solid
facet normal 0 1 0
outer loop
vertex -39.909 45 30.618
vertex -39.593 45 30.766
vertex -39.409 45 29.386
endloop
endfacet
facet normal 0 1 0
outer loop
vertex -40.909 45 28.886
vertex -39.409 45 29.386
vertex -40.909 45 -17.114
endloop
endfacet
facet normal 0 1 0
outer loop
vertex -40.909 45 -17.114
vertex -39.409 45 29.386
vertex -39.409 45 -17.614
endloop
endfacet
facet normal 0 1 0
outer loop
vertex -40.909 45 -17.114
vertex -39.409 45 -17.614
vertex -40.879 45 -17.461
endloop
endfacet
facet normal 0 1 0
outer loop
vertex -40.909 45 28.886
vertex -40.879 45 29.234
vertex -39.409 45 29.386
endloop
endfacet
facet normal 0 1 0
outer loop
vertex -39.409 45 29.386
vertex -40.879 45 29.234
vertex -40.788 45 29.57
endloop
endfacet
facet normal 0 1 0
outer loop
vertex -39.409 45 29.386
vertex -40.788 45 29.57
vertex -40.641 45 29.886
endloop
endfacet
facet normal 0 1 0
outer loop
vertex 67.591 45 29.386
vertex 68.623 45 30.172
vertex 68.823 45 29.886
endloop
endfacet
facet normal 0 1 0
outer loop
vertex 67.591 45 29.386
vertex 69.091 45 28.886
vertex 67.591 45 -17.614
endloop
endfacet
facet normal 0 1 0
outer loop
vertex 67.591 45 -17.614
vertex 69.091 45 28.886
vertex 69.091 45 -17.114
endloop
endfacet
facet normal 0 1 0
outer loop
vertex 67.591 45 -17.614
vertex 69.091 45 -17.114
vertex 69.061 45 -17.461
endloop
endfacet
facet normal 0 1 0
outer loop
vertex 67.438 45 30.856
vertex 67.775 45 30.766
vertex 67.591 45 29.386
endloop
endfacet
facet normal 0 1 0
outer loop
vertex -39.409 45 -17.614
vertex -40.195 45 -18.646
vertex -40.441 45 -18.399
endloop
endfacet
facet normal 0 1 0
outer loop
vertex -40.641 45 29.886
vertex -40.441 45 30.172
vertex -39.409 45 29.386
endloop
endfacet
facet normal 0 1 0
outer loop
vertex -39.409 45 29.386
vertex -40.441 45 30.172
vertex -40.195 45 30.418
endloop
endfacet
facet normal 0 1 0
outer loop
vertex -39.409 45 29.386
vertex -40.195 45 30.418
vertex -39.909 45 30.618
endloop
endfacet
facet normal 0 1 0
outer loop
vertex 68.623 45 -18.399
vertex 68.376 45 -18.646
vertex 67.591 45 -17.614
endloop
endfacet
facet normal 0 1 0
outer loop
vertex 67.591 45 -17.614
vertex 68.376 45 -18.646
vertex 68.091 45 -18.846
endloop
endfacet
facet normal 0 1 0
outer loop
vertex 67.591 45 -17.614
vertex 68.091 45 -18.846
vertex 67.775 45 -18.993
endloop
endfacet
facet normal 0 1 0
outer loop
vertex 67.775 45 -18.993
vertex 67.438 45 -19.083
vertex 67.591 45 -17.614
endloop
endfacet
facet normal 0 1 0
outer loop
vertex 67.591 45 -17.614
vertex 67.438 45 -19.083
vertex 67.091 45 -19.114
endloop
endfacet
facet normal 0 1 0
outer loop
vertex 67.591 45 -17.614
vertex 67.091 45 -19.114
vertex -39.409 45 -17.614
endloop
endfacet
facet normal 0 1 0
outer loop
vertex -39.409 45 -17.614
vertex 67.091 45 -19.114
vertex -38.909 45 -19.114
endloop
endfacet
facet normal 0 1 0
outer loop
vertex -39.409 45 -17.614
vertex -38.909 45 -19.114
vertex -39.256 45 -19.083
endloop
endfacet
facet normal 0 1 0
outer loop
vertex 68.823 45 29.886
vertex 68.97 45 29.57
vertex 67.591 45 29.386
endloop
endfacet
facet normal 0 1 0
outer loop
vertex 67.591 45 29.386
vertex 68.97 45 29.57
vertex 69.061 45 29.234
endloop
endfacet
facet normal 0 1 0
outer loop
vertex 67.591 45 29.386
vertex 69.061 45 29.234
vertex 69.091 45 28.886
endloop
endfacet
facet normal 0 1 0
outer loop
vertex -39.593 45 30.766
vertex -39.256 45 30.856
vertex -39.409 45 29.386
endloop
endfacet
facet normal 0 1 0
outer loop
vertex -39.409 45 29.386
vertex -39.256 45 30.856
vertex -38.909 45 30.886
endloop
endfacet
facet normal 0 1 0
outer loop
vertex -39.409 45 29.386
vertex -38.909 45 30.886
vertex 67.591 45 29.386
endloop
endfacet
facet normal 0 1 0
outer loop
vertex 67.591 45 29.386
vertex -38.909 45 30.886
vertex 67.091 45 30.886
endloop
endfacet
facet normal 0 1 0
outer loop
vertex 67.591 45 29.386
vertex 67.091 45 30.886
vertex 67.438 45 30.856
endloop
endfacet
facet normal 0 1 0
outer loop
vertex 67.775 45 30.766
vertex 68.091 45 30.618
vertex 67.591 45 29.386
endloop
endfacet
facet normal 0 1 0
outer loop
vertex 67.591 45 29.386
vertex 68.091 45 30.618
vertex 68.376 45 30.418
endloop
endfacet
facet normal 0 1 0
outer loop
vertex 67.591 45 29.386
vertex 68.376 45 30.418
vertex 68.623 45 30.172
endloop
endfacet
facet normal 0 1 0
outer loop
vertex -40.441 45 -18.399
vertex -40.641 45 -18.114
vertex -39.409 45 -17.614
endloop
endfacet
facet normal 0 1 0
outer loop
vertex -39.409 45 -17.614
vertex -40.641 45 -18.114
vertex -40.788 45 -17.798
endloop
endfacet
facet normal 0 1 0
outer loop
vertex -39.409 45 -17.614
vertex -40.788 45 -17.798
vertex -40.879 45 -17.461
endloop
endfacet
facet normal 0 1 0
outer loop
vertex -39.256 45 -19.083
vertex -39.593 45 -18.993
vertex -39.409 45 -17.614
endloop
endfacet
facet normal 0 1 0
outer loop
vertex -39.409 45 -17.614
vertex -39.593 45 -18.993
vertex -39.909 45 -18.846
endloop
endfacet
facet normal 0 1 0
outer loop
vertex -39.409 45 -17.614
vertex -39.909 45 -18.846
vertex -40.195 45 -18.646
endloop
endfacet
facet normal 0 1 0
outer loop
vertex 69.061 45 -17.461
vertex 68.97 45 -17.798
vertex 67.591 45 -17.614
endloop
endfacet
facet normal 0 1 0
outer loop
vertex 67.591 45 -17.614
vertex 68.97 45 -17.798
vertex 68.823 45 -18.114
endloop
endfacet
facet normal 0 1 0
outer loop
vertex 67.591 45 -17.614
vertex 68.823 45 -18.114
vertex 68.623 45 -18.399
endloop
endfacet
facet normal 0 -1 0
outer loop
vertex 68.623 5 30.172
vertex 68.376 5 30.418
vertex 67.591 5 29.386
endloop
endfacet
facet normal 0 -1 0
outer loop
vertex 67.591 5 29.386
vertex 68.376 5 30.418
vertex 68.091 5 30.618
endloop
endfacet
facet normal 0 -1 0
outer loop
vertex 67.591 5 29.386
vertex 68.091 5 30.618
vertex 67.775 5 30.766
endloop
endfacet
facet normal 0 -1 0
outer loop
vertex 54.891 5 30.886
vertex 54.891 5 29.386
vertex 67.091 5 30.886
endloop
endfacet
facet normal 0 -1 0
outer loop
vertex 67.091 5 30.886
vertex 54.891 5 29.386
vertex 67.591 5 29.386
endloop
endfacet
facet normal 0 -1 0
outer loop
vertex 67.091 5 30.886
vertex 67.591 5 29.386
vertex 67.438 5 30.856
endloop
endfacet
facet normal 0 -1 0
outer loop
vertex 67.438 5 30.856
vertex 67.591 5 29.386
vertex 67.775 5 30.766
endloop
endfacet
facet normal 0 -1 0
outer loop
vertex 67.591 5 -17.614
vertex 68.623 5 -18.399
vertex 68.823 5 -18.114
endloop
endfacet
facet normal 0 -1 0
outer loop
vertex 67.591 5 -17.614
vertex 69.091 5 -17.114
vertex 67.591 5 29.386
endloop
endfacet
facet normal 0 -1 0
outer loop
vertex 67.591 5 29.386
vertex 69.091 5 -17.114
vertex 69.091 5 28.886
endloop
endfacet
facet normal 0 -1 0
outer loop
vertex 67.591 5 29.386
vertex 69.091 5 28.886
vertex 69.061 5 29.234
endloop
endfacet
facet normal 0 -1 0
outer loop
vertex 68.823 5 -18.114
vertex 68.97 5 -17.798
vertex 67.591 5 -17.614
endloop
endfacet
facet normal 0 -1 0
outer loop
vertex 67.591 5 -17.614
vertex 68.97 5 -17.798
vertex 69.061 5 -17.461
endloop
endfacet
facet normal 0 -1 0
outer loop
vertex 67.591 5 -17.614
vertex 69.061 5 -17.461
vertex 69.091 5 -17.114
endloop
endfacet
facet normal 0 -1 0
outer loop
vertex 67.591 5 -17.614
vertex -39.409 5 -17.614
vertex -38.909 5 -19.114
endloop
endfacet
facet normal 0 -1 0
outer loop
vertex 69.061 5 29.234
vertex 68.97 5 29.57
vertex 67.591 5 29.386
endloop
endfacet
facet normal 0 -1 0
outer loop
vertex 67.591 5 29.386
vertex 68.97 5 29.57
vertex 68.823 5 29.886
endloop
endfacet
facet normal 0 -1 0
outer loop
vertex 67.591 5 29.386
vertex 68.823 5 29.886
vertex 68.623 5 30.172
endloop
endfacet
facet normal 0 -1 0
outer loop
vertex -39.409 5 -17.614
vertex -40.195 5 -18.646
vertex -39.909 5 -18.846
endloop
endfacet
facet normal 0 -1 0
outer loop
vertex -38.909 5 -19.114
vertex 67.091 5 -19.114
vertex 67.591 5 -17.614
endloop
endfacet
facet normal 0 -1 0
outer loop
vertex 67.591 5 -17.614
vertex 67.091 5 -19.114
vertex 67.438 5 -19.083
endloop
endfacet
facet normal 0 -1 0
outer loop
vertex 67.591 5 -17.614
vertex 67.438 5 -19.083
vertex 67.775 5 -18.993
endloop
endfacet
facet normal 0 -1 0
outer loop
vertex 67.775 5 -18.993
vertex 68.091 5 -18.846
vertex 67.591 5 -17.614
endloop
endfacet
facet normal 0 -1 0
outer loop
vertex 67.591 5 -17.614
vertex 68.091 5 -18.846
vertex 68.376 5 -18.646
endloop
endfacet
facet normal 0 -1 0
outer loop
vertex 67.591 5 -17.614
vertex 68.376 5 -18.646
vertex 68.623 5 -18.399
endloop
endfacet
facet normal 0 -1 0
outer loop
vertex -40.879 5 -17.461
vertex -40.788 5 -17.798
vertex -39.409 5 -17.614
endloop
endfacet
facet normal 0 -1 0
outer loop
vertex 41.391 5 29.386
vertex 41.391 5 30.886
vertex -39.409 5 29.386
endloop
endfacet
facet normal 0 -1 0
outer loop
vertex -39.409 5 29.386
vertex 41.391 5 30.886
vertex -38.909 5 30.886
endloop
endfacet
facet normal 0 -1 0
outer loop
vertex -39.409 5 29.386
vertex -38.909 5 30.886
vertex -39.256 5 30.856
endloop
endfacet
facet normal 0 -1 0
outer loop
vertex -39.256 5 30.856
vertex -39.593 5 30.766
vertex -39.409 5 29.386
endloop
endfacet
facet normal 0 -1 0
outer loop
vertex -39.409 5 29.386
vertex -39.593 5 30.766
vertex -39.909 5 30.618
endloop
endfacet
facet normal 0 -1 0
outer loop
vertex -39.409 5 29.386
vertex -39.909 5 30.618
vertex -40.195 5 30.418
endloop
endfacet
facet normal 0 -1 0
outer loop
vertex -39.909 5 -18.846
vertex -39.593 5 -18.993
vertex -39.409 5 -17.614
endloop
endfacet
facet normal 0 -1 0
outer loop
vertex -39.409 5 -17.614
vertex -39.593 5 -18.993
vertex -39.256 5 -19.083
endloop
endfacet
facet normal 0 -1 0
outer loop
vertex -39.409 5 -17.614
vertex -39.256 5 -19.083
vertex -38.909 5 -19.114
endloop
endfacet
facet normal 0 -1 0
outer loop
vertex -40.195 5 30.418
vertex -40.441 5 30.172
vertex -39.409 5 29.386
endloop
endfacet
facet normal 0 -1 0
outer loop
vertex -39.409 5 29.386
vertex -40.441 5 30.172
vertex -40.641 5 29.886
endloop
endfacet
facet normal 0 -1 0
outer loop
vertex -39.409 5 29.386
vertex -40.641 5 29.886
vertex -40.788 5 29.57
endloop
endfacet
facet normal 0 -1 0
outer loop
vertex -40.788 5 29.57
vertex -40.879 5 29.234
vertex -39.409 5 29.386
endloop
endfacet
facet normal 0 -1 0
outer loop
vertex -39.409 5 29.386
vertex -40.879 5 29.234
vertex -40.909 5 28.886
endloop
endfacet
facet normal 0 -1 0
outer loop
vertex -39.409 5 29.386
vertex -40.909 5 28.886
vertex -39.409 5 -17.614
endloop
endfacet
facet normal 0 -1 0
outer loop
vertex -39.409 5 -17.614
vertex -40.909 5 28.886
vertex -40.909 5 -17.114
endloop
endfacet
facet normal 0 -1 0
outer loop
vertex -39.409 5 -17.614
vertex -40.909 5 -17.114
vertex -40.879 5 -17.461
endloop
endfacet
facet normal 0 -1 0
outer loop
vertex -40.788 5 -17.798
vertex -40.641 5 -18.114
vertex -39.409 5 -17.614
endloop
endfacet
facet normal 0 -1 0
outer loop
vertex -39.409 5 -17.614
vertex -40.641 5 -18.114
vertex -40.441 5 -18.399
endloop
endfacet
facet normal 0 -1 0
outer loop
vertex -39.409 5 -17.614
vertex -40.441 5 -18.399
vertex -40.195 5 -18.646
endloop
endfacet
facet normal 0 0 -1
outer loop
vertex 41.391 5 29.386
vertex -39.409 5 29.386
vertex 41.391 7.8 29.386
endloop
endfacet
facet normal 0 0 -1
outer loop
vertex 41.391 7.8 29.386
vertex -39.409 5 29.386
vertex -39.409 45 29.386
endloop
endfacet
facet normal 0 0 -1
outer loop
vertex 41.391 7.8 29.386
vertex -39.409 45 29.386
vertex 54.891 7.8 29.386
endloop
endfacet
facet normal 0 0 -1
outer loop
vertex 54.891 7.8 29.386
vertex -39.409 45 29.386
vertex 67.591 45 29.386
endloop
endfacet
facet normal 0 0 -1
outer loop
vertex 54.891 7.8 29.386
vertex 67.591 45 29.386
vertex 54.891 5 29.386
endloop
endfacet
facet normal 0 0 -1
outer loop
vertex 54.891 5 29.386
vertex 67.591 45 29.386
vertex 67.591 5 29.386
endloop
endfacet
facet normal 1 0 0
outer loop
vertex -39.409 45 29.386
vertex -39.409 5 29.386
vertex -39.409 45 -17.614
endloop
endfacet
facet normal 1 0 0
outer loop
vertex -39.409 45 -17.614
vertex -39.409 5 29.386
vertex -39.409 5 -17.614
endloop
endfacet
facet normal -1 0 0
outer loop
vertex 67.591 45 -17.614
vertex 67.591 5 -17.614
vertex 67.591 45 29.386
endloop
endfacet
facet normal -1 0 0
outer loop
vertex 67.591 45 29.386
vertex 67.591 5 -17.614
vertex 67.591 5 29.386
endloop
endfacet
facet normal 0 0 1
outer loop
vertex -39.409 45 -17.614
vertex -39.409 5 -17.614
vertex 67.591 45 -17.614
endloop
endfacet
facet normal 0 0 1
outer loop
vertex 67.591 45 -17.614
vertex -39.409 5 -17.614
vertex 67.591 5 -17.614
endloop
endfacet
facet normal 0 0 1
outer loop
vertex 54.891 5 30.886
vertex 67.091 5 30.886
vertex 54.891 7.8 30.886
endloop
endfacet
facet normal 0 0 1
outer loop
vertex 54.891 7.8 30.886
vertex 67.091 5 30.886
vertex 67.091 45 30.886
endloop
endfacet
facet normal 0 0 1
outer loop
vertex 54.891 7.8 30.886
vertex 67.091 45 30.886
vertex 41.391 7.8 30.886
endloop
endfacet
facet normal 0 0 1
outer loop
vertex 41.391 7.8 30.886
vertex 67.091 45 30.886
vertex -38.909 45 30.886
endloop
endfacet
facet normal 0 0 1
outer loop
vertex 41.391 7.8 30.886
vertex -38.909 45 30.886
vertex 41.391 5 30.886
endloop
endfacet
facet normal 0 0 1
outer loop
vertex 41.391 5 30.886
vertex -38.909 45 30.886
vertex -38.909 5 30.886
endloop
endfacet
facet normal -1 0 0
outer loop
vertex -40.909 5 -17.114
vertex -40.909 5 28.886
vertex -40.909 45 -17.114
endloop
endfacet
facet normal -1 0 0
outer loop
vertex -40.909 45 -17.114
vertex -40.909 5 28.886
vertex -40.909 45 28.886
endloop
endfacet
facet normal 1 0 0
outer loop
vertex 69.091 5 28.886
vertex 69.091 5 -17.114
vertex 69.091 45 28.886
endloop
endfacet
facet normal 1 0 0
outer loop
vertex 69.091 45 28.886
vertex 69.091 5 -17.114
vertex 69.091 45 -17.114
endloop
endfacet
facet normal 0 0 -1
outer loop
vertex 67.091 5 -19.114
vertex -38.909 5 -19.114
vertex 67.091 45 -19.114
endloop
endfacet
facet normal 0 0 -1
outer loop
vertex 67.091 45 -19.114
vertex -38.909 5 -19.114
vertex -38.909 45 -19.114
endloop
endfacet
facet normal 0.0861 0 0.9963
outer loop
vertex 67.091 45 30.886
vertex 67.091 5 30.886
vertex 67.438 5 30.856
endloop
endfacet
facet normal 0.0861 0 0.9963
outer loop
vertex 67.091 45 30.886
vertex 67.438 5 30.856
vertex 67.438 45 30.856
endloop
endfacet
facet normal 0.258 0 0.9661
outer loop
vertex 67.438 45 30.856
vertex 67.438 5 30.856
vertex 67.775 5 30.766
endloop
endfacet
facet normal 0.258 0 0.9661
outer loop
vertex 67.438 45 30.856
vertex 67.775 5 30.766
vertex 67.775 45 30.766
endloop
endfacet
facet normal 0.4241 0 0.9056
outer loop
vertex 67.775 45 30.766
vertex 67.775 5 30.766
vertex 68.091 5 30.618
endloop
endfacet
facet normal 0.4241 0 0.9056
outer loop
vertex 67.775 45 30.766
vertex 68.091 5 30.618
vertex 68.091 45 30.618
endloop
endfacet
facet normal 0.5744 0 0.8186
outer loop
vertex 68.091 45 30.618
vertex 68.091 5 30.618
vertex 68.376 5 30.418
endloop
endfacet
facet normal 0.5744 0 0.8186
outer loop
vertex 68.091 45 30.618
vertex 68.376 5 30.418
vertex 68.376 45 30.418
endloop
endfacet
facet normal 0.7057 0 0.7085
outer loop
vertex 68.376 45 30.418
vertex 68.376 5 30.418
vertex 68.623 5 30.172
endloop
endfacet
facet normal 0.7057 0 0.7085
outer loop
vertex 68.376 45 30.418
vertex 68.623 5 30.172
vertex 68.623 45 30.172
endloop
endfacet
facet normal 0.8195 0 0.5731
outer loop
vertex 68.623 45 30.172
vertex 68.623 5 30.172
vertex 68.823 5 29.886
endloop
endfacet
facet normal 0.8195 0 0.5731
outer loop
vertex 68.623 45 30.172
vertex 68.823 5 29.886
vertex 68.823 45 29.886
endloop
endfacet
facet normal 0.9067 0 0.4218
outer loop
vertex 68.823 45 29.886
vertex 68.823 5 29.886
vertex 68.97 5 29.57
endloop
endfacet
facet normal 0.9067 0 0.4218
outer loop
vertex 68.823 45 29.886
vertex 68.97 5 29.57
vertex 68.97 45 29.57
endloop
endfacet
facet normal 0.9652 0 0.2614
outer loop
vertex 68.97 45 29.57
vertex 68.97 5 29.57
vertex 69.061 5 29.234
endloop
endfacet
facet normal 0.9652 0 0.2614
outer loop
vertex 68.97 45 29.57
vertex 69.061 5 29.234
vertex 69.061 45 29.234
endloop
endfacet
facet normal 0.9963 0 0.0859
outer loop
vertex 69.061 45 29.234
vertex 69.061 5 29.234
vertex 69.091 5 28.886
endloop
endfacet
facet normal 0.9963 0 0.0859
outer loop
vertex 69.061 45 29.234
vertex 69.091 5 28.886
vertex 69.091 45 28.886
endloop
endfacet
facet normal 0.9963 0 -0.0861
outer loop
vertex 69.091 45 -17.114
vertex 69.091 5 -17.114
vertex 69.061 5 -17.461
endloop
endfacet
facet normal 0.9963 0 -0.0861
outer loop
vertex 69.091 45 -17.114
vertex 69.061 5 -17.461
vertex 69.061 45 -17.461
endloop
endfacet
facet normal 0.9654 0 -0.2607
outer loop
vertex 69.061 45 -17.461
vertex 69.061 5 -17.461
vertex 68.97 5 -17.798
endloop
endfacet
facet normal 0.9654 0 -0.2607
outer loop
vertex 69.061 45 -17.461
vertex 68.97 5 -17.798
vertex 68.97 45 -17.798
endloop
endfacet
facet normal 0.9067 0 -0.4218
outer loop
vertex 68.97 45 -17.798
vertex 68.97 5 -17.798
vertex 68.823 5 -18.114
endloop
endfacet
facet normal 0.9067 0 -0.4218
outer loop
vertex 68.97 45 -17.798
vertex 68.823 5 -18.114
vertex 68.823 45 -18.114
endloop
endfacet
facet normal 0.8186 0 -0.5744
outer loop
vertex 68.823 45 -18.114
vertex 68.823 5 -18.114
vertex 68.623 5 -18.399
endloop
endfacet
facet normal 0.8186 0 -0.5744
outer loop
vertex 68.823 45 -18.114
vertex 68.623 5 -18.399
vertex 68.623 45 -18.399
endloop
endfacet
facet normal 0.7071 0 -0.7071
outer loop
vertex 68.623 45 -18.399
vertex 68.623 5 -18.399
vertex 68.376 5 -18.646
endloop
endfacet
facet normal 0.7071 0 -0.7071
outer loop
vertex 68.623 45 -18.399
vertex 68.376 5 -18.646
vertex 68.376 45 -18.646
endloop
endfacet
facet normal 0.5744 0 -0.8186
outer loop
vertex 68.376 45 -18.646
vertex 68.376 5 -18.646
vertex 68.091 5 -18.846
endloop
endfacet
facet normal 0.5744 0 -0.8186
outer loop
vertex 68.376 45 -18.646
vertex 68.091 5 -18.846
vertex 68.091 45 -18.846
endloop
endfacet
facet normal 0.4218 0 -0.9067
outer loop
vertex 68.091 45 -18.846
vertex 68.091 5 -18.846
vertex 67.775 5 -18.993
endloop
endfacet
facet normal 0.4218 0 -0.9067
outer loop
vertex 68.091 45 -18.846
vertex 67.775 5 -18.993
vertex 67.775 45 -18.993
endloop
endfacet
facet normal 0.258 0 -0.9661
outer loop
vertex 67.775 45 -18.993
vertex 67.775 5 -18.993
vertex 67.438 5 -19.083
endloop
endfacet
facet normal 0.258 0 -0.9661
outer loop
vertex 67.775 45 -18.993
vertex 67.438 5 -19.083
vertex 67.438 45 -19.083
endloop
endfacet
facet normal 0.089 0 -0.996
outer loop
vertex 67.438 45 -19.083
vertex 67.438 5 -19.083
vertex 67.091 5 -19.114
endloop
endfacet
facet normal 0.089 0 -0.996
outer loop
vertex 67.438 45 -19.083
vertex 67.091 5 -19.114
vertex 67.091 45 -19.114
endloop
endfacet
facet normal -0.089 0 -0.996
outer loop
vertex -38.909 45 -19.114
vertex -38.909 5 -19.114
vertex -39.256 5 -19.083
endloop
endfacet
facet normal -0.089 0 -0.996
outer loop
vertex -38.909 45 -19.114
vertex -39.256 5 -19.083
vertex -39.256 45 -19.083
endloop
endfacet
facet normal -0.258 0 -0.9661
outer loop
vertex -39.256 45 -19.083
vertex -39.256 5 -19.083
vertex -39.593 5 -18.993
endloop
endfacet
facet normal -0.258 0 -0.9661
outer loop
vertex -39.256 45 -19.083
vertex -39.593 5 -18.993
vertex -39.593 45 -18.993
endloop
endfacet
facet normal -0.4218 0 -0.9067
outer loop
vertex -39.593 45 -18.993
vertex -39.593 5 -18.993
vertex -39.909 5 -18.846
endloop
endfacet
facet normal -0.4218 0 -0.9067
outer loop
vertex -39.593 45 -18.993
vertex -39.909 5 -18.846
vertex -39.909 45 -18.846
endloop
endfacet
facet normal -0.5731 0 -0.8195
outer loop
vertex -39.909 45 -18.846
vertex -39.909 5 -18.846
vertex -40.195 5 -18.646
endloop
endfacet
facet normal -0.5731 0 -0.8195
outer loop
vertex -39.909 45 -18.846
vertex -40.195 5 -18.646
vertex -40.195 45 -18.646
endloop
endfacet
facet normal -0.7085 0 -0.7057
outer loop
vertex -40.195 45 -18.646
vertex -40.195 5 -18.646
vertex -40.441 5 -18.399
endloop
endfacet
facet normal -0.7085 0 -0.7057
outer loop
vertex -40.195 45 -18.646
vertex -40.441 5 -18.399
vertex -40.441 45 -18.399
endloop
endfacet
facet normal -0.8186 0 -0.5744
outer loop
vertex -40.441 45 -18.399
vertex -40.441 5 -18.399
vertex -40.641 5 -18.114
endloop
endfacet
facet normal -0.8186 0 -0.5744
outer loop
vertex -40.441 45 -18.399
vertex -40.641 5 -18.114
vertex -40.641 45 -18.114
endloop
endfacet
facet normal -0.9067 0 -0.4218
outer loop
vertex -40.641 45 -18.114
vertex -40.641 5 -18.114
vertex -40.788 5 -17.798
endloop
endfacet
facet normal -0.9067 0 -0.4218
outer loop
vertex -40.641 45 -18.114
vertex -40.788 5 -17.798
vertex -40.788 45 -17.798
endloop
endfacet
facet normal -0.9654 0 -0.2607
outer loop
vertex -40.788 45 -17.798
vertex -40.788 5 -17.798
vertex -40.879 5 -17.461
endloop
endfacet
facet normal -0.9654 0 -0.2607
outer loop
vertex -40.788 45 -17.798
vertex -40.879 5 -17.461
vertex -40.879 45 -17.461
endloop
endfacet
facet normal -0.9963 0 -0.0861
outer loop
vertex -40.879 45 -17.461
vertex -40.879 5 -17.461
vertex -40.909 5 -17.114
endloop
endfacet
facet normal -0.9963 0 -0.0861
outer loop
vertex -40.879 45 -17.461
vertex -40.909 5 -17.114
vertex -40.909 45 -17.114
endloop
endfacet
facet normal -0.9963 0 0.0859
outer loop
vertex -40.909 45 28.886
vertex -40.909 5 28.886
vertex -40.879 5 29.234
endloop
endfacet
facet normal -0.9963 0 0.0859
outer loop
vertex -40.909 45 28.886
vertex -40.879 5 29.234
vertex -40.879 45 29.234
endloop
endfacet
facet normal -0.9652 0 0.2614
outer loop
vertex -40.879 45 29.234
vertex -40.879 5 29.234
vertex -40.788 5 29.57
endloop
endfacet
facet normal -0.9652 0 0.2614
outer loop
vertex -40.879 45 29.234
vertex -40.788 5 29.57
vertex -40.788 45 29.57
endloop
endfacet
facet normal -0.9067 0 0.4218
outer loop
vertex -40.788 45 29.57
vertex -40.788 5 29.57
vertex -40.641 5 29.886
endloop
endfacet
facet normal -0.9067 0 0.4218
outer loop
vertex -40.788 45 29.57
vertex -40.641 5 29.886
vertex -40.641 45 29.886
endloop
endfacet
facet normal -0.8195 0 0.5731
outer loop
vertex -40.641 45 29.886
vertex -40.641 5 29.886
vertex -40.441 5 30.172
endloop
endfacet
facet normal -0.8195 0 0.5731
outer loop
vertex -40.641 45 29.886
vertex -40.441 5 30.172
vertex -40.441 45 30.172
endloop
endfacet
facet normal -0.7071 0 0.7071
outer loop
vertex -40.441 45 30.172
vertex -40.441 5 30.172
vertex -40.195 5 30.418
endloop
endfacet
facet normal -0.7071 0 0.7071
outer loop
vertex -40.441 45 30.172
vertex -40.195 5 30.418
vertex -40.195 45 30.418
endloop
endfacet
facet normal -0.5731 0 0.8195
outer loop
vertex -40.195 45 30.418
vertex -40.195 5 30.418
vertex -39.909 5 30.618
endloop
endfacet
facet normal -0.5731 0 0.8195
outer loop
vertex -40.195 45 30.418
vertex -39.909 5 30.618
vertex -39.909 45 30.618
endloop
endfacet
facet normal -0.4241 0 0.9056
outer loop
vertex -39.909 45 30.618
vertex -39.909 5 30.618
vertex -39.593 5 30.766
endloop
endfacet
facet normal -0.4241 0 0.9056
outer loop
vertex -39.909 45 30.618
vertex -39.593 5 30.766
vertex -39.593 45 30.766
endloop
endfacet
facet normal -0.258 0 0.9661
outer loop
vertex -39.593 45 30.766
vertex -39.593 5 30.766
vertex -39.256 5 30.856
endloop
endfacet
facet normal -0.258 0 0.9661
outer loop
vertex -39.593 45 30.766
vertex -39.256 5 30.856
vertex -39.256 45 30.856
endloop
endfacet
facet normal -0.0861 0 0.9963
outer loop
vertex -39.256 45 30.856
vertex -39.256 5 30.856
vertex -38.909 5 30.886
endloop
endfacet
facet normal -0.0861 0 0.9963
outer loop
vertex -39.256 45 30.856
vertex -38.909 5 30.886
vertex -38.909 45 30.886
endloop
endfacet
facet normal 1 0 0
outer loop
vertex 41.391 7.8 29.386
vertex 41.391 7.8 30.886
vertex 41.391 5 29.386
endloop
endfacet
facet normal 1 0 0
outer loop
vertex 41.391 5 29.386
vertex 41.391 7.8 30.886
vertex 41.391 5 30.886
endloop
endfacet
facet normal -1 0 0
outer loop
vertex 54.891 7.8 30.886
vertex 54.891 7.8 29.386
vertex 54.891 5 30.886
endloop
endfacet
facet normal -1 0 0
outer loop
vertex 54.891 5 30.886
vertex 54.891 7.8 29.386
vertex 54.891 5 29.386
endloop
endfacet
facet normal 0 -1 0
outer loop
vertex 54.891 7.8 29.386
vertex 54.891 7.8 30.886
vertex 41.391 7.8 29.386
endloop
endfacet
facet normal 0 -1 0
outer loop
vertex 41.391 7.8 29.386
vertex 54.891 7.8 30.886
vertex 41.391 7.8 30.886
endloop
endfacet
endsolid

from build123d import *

# Parameters (mm, degrees)
STOCK_FULL_START               = 5
STOCK_FULL_SHAPE_1_OUTLINE_W   = 110
STOCK_FULL_SHAPE_1_OUTLINE_H   = 50
STOCK_FULL_SHAPE_1_OUTLINE_W_2 = 107
STOCK_FULL_SHAPE_1_OUTLINE_H_2 = 47
STOCK_FULL_SHAPE_1_DEPTH       = 40
FILLET1_R                      = 2
SKETCH3_W                      = 13.5
SKETCH3_H                      = 1.5
CUT_EXTRUDE1_DEPTH             = 2.8


# Read off the part's stored shape, not the designer's step: Stock-full shape-1
with BuildPart() as part:
    # Stock-full shape-1 outline → Stock-full shape-1 (new body)
    with BuildSketch(Plane(origin=(0, 0, 0), x_dir=(1, 0, 0), z_dir=(0, 1, 0)).offset(STOCK_FULL_START)):
        with Locations((14.090909091, -5.886363636)):
            Rectangle(STOCK_FULL_SHAPE_1_OUTLINE_W, STOCK_FULL_SHAPE_1_OUTLINE_H)
        with Locations((14.090909091, -5.886363636)):
            Rectangle(STOCK_FULL_SHAPE_1_OUTLINE_W_2, STOCK_FULL_SHAPE_1_OUTLINE_H_2, mode=Mode.SUBTRACT)
    extrude(amount=STOCK_FULL_SHAPE_1_DEPTH)

    # Fillet1
    fillet1_edges = [part.edges().sort_by_distance(p)[0] for p in [
        (-40.909090909, 25, -19.113636364),
        (69.090909091, 25, -19.113636364),
        (69.090909091, 25, 30.886363636),
        (-40.909090909, 25, 30.886363636),
    ]]
    fillet(fillet1_edges, radius=FILLET1_R)

    # Sketch3 → Cut-Extrude1 (cut)
    with BuildSketch(Plane.XZ.offset(-5)):
        with Locations((48.140909091, 30.136363636)):
            Rectangle(SKETCH3_W, SKETCH3_H)
    extrude(amount=-CUT_EXTRUDE1_DEPTH, mode=Mode.SUBTRACT)


solid = part.part
